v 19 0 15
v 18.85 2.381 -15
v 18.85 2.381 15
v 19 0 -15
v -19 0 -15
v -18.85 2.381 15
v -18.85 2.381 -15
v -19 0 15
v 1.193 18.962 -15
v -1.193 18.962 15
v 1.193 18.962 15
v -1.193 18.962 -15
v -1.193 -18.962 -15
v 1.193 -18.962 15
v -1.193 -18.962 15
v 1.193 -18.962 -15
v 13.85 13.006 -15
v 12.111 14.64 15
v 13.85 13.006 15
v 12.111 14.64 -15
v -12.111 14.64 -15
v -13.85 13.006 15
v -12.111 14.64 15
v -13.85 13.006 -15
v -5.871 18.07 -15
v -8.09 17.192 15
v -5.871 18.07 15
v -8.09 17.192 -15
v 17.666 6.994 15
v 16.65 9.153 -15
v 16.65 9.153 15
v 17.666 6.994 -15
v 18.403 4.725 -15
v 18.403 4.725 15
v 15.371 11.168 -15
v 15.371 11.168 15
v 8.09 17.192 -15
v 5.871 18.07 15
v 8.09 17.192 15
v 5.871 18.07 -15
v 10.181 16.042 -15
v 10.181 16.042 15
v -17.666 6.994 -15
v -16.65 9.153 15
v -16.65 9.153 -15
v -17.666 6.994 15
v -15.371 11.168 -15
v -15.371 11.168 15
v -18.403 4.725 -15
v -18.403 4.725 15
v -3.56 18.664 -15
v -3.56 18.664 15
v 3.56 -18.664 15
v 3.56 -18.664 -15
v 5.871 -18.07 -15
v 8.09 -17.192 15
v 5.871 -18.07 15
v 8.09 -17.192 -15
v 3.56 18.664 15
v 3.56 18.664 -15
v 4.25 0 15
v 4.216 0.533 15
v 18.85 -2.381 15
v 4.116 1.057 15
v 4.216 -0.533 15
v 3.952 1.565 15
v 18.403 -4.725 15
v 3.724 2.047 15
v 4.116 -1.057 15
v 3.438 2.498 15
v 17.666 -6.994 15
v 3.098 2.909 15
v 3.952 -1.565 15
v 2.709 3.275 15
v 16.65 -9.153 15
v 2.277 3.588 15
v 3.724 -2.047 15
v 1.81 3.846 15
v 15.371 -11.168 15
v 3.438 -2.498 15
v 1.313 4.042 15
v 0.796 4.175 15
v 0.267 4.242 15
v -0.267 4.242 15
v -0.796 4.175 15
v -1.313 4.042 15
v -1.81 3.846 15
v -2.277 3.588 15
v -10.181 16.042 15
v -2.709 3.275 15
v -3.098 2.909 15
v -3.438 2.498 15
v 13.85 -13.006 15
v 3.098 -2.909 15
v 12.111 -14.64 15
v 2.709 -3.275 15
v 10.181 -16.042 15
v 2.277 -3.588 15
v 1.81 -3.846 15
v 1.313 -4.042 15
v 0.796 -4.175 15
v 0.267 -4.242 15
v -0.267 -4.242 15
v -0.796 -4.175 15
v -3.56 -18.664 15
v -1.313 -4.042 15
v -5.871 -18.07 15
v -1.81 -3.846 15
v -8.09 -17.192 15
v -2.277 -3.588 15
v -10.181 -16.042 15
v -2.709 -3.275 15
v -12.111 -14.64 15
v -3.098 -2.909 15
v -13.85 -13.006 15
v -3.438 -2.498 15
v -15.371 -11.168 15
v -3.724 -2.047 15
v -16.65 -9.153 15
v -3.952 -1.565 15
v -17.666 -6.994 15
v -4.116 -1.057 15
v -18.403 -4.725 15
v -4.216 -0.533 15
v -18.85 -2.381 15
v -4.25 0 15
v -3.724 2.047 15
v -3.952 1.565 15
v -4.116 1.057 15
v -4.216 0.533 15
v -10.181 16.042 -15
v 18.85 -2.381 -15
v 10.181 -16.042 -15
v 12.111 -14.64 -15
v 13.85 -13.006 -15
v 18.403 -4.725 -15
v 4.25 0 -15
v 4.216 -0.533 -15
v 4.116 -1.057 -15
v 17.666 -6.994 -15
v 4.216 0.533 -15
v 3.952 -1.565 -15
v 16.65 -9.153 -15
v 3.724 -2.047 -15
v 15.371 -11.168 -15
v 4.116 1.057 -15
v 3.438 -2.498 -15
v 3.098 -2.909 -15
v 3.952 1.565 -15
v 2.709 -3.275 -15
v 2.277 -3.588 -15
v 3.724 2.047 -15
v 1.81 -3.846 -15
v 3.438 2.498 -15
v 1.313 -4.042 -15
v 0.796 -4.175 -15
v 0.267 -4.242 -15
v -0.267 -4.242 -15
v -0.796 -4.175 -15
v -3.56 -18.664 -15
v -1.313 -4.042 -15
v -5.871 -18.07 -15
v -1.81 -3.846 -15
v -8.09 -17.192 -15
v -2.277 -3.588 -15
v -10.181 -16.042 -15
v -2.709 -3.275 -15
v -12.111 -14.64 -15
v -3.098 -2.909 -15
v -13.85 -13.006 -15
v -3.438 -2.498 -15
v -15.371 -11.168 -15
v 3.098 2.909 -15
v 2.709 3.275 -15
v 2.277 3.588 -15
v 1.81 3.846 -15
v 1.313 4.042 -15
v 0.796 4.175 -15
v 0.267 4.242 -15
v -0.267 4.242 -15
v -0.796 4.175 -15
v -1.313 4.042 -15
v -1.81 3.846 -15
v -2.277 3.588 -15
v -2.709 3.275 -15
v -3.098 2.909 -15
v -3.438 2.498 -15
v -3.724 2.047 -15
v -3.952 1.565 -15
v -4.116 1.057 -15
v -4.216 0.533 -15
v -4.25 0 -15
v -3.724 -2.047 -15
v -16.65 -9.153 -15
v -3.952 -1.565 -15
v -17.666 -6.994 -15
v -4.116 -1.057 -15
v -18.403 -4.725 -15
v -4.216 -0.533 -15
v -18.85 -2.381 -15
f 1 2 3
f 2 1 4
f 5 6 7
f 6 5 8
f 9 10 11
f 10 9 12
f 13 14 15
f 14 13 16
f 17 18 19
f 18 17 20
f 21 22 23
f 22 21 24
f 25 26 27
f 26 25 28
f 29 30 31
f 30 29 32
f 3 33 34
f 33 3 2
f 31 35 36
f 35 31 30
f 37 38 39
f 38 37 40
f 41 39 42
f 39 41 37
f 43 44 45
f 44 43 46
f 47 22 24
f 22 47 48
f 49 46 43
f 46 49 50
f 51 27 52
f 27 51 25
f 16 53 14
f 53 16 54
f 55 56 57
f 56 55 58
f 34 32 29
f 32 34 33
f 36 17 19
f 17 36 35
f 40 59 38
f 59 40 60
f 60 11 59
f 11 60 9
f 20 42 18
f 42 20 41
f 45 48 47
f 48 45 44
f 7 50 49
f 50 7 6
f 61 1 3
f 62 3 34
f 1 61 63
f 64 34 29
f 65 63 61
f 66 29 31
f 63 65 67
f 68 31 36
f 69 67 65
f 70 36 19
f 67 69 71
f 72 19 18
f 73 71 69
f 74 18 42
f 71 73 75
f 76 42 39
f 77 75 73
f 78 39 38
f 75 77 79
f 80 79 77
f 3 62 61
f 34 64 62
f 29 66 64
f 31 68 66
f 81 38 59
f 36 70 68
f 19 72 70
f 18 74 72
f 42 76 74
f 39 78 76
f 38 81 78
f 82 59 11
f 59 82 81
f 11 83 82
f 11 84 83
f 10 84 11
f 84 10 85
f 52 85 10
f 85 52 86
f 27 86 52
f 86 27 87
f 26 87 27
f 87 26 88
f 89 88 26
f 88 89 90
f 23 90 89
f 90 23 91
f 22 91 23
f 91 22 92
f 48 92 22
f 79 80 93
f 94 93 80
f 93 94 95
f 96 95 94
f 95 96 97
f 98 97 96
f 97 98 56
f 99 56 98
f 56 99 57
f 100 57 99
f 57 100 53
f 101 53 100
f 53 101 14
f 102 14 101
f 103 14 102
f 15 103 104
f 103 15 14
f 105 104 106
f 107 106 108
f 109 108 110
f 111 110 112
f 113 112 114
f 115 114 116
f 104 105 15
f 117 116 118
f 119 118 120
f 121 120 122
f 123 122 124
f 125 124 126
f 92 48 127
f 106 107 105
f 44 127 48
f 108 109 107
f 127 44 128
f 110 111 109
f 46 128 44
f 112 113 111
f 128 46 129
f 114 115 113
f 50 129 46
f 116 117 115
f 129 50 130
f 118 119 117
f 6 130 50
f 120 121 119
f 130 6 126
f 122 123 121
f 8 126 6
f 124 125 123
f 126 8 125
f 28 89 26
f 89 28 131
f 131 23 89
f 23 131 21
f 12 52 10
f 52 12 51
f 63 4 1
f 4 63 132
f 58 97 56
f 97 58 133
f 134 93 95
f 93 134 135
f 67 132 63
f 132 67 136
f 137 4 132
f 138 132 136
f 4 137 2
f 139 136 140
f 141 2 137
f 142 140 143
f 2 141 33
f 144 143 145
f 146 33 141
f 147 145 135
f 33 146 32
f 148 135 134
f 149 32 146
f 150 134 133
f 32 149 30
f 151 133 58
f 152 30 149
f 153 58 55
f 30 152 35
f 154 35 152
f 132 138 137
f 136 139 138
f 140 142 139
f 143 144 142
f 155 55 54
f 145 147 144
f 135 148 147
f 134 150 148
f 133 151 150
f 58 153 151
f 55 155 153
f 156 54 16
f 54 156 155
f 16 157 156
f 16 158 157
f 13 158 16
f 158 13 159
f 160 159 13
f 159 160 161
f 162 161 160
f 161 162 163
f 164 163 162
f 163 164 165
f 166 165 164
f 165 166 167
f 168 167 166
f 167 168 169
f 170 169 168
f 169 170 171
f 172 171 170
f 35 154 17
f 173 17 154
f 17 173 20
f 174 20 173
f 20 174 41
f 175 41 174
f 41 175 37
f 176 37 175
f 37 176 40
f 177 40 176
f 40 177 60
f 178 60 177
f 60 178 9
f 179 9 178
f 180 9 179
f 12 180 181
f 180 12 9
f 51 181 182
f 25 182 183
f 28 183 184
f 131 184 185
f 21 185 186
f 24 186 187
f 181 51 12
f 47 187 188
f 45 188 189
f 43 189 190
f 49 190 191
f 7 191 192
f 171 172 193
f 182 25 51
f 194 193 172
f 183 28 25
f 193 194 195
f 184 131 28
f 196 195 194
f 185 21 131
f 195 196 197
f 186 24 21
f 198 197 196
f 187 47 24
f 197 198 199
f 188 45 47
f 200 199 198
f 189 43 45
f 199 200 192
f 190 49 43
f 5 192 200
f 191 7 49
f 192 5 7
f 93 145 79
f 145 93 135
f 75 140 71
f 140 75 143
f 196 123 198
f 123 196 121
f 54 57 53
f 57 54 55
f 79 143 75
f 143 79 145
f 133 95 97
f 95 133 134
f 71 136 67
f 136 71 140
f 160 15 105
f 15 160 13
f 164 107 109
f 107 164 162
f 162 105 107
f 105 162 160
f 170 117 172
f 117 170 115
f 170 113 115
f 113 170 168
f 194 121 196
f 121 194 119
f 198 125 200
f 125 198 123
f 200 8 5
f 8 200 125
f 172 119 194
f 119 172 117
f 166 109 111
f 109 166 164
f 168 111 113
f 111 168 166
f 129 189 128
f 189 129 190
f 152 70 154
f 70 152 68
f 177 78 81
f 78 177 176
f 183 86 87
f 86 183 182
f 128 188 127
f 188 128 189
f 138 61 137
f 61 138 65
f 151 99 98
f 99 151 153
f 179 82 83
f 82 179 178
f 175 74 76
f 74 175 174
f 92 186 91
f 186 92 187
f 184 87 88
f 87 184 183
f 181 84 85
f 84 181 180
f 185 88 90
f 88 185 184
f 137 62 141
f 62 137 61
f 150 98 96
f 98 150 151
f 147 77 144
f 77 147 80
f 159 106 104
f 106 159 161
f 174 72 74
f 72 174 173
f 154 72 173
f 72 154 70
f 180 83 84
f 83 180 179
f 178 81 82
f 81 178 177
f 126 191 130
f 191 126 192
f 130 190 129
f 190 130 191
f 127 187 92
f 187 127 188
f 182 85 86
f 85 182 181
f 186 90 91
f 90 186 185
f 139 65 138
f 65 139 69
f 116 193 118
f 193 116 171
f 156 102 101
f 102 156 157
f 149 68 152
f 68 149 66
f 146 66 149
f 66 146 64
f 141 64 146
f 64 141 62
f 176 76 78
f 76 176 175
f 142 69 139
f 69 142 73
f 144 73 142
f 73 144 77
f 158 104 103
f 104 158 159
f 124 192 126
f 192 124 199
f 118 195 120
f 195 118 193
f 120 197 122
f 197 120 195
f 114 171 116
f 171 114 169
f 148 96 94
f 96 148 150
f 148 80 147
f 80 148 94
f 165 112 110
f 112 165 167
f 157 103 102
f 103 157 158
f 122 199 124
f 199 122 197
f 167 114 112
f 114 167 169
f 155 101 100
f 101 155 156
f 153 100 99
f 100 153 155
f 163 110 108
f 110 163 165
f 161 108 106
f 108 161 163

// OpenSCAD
$fn = 50;


difference() {
	union() {
		translate(v = [0, 0, -15.0000000000]) {
			cylinder(h = 30, r = 19.0000000000);
		}
	}
	union() {
		translate(v = [0, 0, -100.0000000000]) {
			cylinder(h = 200, r = 4.2500000000);
		}
	}
}
